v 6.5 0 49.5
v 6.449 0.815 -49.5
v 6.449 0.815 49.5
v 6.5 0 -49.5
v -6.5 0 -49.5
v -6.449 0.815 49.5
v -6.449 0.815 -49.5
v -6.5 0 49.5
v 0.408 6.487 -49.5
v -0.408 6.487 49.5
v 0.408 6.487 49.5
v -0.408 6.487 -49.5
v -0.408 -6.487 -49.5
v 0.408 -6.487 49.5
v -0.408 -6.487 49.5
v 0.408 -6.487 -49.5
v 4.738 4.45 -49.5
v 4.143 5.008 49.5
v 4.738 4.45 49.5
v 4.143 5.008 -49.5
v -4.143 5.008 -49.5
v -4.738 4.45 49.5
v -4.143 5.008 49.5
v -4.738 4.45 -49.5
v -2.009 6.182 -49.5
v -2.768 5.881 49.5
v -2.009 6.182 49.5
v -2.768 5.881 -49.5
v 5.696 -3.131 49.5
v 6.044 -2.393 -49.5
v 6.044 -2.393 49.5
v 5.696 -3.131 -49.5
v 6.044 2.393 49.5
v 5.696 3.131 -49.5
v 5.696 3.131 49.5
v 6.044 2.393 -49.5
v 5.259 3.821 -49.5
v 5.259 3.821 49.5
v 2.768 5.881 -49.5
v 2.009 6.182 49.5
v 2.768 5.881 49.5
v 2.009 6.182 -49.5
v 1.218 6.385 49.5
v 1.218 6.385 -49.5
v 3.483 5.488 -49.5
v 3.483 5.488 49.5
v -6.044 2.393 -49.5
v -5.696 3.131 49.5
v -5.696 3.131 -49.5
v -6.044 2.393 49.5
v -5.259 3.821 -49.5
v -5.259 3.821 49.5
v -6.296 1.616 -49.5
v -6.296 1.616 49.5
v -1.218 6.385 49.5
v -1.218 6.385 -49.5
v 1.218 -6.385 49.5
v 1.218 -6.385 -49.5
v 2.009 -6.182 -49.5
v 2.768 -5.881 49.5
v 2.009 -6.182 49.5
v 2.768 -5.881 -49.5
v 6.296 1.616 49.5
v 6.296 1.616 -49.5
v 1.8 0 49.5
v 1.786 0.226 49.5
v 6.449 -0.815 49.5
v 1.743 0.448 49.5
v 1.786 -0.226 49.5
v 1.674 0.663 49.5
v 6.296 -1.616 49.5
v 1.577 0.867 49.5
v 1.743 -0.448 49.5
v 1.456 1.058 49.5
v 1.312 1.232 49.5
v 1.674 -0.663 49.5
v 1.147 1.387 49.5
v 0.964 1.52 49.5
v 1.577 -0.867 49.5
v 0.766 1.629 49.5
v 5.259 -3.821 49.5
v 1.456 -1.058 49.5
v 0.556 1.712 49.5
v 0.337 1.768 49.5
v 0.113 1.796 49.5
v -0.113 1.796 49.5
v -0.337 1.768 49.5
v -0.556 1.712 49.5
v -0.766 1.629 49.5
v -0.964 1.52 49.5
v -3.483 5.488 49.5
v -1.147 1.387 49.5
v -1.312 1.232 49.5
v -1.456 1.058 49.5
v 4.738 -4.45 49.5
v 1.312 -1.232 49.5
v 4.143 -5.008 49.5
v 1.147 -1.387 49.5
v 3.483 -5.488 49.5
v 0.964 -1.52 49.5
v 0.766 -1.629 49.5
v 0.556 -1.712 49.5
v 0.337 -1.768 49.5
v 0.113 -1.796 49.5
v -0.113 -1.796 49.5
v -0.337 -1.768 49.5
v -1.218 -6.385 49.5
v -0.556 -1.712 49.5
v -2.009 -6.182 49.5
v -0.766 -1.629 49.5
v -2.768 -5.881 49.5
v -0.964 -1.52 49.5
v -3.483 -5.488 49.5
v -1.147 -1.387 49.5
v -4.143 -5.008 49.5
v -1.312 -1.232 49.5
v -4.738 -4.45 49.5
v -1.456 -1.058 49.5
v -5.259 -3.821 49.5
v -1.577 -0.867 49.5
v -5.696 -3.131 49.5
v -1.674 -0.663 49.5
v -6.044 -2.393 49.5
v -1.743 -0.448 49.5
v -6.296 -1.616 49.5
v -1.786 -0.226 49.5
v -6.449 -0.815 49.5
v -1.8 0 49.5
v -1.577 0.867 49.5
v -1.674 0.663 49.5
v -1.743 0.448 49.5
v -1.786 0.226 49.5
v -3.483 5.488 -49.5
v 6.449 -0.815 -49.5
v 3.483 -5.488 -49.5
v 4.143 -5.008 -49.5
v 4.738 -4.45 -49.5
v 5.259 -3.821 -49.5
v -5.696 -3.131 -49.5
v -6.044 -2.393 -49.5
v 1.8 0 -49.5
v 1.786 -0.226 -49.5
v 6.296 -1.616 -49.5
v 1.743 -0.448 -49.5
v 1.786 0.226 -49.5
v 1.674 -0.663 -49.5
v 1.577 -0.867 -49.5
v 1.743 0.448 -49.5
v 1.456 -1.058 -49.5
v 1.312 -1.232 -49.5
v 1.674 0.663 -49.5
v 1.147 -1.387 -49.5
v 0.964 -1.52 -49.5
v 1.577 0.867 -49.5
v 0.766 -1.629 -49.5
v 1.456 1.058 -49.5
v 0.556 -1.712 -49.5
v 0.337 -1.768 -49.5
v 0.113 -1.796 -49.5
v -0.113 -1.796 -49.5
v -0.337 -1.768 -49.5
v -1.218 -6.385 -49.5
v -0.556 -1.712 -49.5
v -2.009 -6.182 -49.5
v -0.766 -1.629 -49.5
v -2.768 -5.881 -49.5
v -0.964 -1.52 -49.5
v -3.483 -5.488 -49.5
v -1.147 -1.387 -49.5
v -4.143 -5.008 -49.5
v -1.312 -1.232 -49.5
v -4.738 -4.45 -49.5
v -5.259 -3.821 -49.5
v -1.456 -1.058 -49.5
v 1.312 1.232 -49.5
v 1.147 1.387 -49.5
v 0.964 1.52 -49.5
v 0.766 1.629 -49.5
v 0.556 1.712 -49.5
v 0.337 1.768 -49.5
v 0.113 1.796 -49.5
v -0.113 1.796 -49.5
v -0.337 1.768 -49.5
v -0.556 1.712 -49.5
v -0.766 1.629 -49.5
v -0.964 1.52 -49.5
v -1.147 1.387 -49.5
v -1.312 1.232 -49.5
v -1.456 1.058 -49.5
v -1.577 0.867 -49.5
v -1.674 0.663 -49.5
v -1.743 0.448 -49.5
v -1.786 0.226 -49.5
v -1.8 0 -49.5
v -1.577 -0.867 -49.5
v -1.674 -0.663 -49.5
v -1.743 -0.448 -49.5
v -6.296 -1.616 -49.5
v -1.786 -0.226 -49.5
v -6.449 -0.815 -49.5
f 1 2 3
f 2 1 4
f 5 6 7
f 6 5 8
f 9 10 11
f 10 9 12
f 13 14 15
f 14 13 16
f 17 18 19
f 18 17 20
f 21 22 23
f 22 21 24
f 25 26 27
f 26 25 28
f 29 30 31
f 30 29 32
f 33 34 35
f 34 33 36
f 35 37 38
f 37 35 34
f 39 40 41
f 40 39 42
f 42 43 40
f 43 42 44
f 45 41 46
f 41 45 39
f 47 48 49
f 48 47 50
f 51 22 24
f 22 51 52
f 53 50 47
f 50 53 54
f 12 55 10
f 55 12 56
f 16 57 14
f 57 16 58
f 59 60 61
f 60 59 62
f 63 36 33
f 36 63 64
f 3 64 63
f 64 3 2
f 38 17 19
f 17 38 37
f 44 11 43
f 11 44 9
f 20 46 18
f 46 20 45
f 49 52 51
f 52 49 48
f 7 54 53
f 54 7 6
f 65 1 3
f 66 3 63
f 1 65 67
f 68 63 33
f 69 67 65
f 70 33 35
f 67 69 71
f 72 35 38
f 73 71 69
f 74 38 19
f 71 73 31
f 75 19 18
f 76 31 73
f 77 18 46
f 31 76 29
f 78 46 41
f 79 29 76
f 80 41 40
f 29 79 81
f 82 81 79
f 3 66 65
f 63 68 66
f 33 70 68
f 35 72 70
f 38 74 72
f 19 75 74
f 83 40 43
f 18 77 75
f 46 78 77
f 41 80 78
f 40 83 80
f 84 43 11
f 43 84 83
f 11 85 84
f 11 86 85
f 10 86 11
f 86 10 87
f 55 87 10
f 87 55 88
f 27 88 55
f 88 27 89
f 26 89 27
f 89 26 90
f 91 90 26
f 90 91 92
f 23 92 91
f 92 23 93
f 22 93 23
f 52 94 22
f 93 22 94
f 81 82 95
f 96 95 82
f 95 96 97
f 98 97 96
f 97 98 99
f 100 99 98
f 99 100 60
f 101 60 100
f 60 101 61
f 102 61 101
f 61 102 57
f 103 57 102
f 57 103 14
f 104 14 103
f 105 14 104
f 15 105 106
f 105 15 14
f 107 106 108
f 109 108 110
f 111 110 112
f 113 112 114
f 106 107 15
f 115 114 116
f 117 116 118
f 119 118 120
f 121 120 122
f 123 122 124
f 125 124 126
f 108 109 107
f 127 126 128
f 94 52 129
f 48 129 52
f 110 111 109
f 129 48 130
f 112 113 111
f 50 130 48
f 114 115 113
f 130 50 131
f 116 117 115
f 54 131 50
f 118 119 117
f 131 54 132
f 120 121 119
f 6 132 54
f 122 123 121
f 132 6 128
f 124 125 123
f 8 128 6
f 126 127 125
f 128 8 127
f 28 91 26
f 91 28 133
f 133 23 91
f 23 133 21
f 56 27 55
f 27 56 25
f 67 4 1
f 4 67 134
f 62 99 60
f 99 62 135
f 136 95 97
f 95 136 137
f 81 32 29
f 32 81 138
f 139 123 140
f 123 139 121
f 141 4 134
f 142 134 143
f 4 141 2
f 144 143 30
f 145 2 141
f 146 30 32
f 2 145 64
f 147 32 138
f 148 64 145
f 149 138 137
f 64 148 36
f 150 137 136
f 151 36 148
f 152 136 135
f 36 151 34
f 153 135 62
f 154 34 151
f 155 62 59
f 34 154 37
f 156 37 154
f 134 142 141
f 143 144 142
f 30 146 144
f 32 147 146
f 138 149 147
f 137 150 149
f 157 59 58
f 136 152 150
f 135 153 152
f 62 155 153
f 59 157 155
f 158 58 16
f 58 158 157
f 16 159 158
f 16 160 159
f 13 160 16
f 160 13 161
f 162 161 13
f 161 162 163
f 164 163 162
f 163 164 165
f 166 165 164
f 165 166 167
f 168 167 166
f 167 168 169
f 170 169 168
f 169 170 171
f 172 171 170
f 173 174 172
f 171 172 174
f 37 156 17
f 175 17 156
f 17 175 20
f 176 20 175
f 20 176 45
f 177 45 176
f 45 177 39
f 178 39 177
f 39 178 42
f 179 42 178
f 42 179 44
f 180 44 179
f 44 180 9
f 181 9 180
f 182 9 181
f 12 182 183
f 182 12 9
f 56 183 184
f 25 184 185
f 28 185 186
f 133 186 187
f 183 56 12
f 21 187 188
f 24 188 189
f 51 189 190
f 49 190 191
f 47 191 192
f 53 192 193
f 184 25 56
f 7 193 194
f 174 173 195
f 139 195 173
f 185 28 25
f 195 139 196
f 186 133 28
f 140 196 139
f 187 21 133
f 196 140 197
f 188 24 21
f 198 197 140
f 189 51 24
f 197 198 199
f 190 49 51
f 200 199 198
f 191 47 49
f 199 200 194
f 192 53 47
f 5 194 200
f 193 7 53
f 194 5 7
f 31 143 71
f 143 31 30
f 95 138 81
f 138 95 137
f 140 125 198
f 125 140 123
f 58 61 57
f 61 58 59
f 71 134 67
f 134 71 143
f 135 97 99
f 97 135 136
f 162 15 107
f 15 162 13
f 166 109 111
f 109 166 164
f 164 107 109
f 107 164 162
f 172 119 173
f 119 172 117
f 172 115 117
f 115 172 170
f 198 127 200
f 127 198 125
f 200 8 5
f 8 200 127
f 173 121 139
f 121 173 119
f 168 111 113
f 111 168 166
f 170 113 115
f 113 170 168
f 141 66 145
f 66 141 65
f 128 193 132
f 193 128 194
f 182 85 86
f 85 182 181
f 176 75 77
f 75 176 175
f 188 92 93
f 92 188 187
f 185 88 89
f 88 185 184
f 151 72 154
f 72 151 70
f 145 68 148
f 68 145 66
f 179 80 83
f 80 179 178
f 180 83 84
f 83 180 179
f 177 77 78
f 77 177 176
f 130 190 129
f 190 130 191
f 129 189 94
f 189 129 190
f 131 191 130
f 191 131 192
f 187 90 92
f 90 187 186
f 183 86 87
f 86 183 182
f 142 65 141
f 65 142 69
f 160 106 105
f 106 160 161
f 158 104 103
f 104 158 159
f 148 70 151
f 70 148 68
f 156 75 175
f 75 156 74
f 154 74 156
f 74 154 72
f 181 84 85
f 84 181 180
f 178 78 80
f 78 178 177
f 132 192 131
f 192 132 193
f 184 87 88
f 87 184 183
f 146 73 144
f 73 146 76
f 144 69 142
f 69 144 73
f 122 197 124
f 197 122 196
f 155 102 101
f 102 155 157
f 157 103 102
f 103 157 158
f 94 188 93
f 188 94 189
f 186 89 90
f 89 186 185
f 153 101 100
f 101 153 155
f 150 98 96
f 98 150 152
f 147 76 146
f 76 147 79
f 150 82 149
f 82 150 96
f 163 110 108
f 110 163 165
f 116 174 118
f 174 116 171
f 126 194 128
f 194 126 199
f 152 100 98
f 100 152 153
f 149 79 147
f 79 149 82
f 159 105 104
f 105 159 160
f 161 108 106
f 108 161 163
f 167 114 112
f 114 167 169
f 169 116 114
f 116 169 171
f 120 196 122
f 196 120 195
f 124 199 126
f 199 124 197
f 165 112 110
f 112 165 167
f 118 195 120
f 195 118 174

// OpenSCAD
$fn = 50;


difference() {
	union() {
		translate(v = [0, 0, -49.5000000000]) {
			cylinder(h = 99, r = 6.5000000000);
		}
	}
	union() {
		translate(v = [0, 0, -100.0000000000]) {
			cylinder(h = 200, r = 1.8000000000);
		}
	}
}
